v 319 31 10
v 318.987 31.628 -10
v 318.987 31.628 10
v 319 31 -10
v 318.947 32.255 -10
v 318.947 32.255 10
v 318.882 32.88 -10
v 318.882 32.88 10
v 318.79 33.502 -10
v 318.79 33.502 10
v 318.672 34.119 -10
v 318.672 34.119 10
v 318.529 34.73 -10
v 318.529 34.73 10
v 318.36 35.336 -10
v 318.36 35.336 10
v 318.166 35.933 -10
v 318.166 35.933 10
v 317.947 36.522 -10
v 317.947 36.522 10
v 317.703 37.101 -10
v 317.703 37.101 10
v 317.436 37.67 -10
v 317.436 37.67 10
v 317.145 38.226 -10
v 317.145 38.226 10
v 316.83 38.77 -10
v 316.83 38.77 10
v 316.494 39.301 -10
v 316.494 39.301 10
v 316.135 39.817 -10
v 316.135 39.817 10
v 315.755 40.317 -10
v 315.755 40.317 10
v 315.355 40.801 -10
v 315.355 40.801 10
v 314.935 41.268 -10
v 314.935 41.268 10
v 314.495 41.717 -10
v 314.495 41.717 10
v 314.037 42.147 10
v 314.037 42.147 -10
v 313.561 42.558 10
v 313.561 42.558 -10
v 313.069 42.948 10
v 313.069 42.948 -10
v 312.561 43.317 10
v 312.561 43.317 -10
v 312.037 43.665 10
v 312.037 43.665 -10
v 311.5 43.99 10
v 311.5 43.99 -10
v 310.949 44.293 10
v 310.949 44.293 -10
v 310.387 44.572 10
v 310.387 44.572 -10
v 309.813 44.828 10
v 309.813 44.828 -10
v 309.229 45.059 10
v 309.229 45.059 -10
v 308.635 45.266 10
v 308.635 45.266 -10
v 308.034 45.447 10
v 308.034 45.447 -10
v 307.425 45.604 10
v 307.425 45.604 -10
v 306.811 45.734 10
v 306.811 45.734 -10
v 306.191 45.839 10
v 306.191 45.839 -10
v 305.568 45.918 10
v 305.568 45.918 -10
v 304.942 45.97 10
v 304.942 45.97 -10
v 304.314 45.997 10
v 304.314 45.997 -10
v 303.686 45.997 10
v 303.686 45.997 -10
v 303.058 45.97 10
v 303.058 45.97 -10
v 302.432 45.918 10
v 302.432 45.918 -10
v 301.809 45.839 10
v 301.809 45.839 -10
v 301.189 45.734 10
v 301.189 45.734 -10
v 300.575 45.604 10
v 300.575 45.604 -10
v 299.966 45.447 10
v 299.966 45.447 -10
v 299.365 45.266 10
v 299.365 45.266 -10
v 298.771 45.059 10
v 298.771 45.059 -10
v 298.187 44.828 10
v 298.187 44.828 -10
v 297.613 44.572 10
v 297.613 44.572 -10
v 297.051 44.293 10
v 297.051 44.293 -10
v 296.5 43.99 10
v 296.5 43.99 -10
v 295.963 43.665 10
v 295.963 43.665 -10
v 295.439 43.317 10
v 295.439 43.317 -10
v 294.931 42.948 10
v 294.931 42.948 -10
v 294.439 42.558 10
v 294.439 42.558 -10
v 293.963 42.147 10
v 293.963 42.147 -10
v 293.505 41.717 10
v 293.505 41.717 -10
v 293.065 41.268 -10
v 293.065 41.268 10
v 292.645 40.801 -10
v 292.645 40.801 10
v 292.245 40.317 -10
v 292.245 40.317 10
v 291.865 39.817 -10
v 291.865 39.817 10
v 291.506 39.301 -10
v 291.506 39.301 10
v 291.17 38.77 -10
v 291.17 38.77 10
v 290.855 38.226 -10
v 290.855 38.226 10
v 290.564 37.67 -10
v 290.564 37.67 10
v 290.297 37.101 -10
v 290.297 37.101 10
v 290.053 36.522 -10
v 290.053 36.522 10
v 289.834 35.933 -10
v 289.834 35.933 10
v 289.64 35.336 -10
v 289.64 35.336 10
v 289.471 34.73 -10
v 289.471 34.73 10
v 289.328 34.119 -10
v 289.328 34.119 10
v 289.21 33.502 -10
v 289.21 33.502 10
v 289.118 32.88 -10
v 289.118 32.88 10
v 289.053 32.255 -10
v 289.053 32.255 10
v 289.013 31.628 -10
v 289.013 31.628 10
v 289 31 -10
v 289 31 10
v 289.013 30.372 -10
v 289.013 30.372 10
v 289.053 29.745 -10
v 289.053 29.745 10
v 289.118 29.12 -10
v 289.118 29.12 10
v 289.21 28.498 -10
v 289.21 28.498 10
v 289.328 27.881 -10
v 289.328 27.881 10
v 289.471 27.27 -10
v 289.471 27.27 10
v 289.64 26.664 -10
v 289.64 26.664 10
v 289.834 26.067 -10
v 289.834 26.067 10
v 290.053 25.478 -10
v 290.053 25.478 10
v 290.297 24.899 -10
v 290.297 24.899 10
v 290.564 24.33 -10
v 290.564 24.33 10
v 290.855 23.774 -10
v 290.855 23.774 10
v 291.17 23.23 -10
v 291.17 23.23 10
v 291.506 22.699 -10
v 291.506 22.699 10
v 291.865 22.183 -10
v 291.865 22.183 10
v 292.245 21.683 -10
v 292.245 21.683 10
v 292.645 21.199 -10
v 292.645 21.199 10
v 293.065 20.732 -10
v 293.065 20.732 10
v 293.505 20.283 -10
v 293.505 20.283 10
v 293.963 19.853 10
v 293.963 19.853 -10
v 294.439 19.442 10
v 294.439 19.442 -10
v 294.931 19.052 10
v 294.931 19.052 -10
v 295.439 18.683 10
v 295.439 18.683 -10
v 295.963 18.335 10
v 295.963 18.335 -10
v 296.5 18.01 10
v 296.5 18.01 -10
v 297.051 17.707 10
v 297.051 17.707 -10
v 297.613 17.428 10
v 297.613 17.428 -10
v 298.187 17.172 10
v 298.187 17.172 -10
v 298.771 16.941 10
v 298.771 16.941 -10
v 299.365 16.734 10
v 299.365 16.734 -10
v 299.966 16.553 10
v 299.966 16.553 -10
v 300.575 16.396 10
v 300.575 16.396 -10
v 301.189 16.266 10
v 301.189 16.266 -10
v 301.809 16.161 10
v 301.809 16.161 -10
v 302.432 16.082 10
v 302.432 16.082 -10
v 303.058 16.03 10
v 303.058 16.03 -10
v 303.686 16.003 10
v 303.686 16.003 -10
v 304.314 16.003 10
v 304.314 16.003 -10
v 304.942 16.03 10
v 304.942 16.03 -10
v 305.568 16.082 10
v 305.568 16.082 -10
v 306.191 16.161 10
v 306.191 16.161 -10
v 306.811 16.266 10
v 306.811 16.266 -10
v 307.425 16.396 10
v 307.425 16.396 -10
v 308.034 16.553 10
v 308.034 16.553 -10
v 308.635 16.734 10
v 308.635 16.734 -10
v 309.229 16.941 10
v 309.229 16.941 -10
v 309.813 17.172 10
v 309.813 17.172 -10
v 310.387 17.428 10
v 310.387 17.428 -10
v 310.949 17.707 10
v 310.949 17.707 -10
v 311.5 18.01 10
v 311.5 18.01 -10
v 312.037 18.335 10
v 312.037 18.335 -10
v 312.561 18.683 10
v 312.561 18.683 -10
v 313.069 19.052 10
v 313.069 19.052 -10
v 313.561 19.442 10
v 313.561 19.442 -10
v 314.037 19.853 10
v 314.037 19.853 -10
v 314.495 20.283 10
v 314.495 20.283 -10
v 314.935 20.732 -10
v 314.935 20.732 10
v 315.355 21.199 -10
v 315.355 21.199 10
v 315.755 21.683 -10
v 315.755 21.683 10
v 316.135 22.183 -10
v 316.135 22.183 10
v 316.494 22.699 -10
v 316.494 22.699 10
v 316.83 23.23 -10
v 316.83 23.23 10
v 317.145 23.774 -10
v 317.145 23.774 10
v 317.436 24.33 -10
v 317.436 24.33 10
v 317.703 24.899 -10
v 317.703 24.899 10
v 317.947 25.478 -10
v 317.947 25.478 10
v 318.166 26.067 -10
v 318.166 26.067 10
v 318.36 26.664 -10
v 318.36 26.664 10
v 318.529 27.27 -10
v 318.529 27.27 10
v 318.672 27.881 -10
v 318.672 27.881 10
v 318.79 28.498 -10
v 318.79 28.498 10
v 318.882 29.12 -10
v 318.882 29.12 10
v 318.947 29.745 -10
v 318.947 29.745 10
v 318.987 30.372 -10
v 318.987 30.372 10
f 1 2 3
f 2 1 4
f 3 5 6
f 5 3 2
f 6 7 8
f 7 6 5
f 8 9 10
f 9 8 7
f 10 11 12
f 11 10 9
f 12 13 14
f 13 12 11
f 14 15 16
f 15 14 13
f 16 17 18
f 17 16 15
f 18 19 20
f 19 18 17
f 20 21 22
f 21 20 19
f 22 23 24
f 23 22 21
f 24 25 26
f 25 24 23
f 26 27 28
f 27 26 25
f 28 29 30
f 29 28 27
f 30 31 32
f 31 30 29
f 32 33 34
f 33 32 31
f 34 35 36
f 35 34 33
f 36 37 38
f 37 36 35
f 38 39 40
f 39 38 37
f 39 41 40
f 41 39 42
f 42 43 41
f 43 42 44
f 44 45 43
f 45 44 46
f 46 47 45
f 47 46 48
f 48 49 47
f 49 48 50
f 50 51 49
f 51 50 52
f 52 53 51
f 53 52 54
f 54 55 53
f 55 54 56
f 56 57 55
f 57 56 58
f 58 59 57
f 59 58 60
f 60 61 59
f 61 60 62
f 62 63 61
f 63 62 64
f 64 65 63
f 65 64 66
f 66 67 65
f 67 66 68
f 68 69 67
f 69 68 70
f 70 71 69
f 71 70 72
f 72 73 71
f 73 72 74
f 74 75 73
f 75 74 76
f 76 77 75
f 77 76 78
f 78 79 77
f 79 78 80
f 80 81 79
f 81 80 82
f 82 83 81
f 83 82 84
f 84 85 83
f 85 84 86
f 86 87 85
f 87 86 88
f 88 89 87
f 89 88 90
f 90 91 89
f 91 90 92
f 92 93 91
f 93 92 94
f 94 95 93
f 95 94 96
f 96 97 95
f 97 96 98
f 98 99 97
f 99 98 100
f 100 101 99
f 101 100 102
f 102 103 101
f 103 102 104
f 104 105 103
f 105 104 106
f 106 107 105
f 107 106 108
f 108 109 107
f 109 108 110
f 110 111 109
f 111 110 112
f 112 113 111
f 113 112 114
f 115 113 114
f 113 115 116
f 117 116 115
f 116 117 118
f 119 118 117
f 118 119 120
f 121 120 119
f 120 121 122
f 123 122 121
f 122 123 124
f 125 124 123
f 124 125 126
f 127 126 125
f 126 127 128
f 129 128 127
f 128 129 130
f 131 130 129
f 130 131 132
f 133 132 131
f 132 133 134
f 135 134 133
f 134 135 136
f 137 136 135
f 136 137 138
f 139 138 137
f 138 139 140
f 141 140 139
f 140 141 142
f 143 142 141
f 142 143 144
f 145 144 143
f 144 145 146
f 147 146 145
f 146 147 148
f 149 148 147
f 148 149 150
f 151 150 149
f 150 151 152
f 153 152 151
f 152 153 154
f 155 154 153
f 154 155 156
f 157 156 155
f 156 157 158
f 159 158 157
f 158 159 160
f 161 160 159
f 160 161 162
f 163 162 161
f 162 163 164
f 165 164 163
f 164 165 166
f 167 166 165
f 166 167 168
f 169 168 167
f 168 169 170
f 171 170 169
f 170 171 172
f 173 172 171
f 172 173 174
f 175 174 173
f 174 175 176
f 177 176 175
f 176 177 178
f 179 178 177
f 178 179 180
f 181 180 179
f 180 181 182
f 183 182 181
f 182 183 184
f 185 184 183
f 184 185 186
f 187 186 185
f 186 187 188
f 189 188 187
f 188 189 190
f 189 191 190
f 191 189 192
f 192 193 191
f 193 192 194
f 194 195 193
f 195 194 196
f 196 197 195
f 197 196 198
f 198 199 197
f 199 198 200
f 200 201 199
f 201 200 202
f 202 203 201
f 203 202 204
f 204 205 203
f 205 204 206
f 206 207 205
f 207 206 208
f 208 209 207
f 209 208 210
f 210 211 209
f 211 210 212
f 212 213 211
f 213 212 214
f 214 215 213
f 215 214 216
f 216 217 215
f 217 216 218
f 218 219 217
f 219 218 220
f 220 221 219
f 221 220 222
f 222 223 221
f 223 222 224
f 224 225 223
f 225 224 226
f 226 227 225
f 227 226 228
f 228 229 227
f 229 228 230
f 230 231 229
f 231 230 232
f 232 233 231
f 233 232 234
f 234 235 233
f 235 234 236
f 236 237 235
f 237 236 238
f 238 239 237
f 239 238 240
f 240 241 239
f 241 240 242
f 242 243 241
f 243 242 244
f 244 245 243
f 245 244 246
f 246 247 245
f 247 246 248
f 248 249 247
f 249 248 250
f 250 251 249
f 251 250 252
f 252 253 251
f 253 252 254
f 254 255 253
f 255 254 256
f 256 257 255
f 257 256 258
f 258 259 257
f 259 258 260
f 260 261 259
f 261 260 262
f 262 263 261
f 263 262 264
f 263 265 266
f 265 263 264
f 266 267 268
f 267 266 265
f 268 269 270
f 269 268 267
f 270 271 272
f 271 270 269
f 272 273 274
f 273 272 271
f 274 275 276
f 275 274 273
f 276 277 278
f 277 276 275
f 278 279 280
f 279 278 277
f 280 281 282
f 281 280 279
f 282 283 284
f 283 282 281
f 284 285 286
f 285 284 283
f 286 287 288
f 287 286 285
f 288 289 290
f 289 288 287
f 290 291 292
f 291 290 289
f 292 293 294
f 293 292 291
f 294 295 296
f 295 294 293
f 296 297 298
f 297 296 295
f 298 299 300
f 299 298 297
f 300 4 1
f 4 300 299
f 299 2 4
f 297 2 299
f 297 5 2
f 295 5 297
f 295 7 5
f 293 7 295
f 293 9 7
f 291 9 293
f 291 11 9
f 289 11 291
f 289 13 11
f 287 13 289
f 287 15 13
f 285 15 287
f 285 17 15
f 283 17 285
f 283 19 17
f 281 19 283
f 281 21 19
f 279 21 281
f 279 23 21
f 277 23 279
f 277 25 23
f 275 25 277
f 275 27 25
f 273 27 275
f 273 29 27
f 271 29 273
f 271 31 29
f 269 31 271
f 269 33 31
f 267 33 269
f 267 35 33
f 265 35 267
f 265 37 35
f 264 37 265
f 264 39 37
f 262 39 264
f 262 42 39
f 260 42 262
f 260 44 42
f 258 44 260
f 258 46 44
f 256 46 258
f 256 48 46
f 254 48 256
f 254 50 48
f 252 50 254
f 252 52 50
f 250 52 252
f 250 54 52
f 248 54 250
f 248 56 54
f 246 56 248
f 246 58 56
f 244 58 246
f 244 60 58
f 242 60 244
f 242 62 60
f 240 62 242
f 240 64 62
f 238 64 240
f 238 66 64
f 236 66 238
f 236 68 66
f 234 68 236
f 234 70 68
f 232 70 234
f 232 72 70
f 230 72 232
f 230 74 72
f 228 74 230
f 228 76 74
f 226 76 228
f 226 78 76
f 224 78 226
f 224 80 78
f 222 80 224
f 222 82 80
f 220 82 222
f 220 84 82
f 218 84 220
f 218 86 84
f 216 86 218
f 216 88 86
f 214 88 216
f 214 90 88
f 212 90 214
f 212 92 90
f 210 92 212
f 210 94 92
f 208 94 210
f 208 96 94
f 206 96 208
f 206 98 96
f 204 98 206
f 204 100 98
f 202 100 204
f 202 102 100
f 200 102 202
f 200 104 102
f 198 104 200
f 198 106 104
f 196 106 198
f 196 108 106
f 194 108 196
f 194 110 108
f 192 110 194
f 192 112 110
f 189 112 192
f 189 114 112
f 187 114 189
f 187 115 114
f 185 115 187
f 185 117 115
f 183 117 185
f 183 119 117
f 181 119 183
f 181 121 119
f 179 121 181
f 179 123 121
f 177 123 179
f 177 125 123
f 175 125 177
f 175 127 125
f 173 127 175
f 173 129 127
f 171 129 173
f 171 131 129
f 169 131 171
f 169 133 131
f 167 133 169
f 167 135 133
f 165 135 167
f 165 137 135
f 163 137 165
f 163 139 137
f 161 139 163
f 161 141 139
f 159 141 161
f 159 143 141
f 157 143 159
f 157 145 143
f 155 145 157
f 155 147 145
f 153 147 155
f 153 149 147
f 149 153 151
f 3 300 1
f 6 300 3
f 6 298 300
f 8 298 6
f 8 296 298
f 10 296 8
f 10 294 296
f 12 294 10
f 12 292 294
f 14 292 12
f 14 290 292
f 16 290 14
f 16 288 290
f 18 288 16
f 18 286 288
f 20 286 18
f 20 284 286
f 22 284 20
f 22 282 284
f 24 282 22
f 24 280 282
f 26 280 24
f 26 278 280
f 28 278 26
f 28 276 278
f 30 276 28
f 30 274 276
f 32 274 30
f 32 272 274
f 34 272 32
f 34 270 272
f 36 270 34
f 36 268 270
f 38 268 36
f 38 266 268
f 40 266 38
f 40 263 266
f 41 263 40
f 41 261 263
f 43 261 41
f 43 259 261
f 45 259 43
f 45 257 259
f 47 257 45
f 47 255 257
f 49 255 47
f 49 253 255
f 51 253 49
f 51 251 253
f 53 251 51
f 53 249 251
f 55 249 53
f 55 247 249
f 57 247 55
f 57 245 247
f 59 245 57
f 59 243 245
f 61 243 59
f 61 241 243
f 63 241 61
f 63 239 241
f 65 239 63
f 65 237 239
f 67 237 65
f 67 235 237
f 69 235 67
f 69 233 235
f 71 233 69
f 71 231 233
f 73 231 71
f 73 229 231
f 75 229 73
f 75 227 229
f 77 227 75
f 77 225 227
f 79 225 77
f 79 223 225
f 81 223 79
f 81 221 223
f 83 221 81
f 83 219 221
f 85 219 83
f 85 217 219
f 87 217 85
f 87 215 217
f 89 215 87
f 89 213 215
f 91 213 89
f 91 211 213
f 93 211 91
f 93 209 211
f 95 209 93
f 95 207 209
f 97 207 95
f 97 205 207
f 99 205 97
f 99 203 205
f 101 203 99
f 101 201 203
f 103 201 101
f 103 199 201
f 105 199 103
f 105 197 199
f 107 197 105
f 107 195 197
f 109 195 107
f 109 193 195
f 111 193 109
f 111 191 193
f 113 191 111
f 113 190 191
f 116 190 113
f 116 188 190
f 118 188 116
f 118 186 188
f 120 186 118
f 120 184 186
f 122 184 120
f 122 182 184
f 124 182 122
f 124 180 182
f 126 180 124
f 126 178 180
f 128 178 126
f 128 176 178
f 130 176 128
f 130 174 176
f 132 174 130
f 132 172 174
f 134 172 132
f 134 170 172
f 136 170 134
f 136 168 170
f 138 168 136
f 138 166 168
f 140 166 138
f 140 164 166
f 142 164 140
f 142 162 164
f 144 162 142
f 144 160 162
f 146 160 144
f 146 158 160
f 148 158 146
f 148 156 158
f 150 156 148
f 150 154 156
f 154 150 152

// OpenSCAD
$fn = 150;

translate([304, 31, 0])
rotate([0, 0, 0])
cylinder(20, 15, 15, true);
